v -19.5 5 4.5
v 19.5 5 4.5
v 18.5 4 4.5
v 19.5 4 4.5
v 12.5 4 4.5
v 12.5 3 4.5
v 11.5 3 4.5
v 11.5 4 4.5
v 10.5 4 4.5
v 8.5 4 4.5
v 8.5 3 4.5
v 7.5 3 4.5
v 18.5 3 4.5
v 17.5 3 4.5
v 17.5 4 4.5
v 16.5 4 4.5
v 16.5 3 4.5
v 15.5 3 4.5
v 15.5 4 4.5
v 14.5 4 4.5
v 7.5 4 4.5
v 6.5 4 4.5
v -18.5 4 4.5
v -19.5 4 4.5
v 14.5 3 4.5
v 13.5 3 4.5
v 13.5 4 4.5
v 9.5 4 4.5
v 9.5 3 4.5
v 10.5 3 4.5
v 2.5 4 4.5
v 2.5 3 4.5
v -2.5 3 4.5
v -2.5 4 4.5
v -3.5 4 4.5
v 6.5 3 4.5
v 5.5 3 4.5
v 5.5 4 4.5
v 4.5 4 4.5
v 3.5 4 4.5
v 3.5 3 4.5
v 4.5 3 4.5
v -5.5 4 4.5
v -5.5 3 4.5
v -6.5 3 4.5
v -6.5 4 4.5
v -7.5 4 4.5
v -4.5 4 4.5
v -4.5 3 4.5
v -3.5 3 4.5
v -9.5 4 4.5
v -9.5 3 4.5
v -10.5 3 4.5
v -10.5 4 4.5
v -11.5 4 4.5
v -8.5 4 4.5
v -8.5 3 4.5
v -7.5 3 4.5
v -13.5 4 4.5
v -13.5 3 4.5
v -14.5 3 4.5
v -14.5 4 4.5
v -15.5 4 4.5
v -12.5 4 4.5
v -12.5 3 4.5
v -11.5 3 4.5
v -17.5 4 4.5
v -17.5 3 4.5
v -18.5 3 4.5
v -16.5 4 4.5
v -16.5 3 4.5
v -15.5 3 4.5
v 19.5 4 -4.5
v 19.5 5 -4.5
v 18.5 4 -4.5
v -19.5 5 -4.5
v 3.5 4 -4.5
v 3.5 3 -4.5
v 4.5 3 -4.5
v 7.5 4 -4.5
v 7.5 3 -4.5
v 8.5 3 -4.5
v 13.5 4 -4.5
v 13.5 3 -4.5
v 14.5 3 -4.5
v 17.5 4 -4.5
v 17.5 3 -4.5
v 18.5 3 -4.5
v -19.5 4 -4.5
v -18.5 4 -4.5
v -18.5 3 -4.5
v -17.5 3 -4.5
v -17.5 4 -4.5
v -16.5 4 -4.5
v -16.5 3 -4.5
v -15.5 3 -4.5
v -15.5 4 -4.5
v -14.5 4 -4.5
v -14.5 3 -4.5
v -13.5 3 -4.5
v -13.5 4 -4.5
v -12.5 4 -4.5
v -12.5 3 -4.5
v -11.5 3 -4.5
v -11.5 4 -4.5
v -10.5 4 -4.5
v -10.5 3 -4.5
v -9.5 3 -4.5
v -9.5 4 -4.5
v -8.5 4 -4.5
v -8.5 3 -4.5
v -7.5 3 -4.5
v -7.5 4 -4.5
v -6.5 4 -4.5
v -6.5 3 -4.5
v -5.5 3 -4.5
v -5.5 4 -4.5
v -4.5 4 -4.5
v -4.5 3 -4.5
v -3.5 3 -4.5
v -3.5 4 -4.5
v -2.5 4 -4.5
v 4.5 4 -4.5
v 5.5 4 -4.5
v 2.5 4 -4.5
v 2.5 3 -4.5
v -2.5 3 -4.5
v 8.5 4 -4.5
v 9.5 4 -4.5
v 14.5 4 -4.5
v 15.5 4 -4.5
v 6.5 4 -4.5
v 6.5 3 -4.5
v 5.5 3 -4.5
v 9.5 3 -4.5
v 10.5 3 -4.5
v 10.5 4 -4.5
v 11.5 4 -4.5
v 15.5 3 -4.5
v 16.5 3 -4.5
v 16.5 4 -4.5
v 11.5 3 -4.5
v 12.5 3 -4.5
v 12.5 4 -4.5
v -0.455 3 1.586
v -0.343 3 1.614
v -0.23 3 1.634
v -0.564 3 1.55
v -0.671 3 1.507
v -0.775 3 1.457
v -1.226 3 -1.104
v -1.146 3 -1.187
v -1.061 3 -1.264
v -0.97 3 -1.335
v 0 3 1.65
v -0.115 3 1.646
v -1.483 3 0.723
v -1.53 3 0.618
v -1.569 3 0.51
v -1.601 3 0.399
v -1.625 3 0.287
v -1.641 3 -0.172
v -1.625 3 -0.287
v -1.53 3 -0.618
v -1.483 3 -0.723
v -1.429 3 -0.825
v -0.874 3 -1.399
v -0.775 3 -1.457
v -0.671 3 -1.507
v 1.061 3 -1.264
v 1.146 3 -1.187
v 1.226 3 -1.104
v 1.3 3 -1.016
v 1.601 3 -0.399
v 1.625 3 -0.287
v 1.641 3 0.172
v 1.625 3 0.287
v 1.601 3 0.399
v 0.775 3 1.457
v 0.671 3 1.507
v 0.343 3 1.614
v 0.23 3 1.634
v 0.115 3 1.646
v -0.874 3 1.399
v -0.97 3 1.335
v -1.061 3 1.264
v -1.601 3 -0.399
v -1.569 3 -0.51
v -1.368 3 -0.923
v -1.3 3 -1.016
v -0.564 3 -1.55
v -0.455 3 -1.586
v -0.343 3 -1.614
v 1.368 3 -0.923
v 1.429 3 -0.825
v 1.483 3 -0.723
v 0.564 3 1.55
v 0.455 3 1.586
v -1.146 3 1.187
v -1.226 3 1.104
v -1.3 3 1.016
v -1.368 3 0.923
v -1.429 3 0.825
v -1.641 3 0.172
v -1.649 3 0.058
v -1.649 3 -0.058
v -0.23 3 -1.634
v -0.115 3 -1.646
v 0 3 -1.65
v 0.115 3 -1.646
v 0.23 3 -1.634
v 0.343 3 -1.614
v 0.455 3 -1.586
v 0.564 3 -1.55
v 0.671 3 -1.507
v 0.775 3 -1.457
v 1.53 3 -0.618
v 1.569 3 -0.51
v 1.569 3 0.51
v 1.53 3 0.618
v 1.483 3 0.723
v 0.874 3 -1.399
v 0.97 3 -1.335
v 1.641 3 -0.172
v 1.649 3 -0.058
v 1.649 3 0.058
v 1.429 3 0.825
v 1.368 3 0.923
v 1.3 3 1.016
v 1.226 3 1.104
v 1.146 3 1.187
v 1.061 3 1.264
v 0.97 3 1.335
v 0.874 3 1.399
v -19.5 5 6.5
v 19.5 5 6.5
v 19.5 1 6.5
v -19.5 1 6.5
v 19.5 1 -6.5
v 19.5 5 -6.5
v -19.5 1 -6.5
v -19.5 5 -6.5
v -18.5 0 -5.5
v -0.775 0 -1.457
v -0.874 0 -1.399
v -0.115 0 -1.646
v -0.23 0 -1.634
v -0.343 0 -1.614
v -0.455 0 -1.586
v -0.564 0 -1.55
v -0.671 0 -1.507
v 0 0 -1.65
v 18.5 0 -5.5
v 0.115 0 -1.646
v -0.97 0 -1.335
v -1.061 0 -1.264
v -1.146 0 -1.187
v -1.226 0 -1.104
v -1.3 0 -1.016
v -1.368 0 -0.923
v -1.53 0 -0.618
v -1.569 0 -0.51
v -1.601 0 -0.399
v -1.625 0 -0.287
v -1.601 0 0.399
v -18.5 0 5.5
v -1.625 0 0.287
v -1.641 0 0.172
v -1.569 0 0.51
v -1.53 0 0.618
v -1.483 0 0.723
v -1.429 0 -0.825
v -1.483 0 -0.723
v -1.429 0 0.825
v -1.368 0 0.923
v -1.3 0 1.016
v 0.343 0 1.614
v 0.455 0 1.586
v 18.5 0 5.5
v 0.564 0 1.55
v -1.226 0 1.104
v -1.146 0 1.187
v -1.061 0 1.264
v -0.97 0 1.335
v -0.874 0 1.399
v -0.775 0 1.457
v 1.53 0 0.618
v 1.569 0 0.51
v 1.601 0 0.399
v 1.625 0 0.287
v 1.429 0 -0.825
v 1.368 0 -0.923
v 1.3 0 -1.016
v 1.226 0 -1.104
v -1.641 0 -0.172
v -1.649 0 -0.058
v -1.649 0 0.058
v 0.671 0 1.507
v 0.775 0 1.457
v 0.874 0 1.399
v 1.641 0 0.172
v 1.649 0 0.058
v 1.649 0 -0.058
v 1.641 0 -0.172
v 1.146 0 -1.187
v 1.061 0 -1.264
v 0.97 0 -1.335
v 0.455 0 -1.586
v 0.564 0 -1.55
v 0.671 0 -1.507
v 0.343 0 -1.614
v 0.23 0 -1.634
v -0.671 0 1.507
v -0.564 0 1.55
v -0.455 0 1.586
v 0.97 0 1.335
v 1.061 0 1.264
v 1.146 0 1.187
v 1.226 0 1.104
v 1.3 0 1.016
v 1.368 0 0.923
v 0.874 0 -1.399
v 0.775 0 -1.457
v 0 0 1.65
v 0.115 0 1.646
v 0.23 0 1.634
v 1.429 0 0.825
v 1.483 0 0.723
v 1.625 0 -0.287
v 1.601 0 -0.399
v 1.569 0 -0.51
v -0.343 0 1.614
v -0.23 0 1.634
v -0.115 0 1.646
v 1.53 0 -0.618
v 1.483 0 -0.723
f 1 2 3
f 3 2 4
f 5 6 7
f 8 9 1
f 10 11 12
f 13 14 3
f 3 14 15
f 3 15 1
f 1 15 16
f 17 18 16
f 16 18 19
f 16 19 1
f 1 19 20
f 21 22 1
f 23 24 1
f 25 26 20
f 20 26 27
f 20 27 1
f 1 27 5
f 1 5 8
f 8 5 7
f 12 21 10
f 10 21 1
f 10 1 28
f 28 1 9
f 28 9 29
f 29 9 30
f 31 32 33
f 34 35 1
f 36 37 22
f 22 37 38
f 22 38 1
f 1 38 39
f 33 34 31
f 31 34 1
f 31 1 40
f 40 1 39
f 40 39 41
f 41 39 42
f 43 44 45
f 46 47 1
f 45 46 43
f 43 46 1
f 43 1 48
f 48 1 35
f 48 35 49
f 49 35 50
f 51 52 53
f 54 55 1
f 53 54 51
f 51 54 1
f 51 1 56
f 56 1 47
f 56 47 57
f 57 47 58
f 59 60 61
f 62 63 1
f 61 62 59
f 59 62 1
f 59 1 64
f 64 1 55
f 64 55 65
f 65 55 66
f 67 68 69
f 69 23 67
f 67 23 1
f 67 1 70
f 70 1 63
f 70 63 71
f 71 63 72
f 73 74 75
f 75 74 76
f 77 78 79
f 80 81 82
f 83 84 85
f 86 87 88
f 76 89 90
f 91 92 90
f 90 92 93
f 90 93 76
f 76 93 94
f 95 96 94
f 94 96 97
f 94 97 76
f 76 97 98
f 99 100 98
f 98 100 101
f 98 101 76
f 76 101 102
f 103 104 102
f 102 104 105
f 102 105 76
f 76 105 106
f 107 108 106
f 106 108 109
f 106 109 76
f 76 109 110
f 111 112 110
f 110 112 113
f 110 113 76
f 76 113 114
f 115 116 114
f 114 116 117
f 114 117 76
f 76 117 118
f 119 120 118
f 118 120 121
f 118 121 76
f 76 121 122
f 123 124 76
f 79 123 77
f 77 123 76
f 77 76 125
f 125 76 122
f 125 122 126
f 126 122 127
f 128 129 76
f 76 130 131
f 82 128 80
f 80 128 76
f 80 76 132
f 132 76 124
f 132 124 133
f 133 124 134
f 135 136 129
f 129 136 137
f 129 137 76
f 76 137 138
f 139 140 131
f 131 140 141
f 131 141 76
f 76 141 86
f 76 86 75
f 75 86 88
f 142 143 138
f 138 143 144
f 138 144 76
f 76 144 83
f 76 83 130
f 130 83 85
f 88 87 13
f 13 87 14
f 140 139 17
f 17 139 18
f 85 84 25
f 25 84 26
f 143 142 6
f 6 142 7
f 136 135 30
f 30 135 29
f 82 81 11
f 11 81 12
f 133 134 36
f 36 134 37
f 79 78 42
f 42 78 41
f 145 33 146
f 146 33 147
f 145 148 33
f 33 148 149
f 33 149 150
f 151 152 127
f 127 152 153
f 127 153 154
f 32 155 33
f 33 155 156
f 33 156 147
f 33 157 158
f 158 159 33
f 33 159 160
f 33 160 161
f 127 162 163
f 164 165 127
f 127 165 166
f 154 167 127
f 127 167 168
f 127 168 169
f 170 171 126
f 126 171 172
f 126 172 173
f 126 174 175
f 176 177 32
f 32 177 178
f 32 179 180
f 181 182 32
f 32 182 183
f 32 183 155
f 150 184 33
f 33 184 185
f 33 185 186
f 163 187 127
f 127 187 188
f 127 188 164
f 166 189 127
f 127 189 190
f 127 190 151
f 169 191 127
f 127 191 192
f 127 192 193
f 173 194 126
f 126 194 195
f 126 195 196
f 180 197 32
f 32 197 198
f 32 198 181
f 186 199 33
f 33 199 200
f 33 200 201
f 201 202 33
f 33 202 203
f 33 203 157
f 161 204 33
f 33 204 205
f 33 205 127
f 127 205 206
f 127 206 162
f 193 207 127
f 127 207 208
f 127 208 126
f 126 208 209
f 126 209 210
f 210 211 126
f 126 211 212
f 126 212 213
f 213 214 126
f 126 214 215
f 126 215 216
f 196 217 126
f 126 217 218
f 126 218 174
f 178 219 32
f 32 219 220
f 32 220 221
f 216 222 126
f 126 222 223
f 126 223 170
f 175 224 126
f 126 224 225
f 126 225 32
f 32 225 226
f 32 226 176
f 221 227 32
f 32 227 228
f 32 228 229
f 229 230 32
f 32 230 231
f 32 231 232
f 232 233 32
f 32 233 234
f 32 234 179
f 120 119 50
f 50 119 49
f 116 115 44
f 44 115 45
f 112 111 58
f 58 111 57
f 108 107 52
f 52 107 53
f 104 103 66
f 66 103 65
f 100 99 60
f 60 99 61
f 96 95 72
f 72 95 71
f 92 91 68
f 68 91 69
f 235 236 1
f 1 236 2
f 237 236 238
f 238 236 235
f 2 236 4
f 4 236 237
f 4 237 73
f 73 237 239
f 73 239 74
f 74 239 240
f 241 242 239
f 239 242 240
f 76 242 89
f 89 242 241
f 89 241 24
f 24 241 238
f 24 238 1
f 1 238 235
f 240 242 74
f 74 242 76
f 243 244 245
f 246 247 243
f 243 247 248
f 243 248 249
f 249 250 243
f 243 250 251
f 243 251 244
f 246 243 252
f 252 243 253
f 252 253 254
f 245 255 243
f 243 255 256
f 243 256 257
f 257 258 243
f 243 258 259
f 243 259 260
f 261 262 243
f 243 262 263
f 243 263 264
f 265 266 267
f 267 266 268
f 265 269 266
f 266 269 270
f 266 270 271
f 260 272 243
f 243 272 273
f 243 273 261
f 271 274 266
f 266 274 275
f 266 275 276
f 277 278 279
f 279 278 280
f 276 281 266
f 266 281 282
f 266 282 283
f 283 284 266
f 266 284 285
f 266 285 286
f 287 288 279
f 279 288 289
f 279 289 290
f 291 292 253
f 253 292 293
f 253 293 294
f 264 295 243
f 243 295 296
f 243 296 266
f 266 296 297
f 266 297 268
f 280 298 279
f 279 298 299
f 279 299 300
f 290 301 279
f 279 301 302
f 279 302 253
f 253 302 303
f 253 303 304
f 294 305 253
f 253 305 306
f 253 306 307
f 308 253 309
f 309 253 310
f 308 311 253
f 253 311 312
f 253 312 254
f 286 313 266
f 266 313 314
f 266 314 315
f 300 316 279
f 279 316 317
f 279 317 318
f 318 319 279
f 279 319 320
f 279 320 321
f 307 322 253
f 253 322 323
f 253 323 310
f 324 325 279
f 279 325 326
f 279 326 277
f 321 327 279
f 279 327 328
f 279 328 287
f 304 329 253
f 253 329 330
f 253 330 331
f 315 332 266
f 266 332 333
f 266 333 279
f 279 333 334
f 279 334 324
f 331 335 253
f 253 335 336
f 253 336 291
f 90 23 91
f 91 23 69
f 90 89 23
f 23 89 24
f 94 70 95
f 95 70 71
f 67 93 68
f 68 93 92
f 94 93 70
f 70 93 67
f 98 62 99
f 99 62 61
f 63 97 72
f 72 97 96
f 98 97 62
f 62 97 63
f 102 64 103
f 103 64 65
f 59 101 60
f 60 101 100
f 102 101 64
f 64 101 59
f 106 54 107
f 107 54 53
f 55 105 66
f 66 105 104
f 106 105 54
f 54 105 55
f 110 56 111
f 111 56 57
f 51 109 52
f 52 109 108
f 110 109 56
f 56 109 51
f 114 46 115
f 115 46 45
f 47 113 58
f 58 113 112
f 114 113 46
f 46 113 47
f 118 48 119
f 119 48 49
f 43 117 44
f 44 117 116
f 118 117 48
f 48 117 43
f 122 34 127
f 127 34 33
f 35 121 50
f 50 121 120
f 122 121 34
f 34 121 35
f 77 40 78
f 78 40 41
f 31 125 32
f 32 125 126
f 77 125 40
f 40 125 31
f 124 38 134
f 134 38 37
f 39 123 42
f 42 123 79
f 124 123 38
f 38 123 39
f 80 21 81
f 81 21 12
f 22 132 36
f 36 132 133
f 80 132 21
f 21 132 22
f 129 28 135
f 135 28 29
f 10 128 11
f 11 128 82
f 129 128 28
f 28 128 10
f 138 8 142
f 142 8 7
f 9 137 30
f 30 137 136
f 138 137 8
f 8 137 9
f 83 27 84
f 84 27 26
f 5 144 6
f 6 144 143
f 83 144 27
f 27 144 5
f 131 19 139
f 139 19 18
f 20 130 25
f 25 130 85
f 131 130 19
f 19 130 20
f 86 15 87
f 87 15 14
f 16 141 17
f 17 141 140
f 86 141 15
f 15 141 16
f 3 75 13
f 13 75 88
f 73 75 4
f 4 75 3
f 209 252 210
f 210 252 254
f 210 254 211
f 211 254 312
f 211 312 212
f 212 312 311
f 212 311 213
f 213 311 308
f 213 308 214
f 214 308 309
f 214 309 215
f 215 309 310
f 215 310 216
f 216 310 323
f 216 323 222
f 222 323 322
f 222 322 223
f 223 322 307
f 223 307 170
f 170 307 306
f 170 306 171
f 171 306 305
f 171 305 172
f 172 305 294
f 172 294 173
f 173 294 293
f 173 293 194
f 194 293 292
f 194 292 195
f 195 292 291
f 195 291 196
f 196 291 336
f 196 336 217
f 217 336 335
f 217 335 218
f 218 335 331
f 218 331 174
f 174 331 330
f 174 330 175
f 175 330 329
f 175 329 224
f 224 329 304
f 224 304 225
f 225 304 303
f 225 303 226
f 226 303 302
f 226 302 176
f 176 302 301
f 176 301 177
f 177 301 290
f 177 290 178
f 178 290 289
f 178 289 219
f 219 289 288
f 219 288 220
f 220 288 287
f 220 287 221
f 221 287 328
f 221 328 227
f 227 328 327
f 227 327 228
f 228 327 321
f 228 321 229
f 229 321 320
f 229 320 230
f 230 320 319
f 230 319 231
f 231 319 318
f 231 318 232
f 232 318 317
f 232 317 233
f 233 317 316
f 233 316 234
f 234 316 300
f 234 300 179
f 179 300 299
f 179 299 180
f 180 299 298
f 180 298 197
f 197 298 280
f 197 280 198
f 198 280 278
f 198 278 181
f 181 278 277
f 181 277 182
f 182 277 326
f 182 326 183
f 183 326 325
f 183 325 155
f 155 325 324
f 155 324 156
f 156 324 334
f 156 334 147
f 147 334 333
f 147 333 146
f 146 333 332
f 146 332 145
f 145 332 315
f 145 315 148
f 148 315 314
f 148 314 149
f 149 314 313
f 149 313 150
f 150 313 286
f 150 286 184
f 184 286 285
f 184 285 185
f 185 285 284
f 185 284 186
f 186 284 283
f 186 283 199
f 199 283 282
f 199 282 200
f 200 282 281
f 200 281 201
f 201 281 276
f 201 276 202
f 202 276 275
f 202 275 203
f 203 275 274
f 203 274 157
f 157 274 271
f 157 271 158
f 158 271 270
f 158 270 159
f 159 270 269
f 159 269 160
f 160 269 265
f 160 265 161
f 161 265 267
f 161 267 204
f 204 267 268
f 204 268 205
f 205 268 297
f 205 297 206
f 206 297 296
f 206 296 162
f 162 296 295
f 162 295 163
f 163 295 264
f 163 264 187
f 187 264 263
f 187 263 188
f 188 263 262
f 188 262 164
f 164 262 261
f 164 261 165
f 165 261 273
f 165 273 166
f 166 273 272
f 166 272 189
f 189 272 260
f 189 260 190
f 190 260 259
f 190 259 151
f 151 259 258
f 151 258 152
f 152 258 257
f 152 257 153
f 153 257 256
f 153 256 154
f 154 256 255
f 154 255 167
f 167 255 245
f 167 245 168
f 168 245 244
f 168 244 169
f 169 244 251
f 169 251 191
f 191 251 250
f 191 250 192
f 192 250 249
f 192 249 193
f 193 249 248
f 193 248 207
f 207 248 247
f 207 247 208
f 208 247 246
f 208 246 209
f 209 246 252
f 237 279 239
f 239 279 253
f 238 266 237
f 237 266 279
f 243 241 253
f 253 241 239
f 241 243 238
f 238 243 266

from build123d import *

# Parameters (mm, degrees)
SKETCH1_W           = 39
SKETCH1_H           = 13
BOSS_EXTRUDE1_DEPTH = 5
SKETCH5_W           = 39
SKETCH5_H           = 9
CUT_EXTRUDE1_DEPTH  = 2
SKETCH2_W           = 1
SKETCH2_H           = 9
BOSS_EXTRUDE2_DEPTH = 1
SKETCH6_R           = 1.65
CUT_EXTRUDE2_DEPTH  = 6
CHAMFER1_SIZE       = 1


with BuildPart() as part:
    # Sketch1 → Boss-Extrude1 (new body)
    with BuildSketch(Plane(origin=(0, 0, 0), x_dir=(1, 0, 0), z_dir=(0, 1, 0))):
        Rectangle(SKETCH1_W, SKETCH1_H)
    extrude(amount=BOSS_EXTRUDE1_DEPTH)

    # Sketch5 → Cut-Extrude1 (cut)
    with BuildSketch(Plane(origin=(0, 5, 0), x_dir=(1, 0, 0), z_dir=(0, 1, 0))):
        Rectangle(SKETCH5_W, SKETCH5_H)
    extrude(amount=-CUT_EXTRUDE1_DEPTH, mode=Mode.SUBTRACT)

    # Sketch2 → Boss-Extrude2 (add)
    with BuildSketch(Plane(origin=(0, 3, 0), x_dir=(1, 0, 0), z_dir=(0, 1, 0))):
        with Locations((7, 0)):
            Rectangle(SKETCH2_W, SKETCH2_H)
        with Locations((5, 0)):
            Rectangle(SKETCH2_W, SKETCH2_H)
        with Locations((9, 0)):
            Rectangle(SKETCH2_W, SKETCH2_H)
        with Locations((3, 0)):
            Rectangle(SKETCH2_W, SKETCH2_H)
        with Locations((11, 0)):
            Rectangle(SKETCH2_W, SKETCH2_H)
        with Locations((13, 0)):
            Rectangle(SKETCH2_W, SKETCH2_H)
        with Locations((15, 0)):
            Rectangle(SKETCH2_W, SKETCH2_H)
        with Locations((-3, 0)):
            Rectangle(SKETCH2_W, SKETCH2_H)
        with Locations((17, 0)):
            Rectangle(SKETCH2_W, SKETCH2_H)
        with Locations((-5, 0)):
            Rectangle(SKETCH2_W, SKETCH2_H)
        with Locations((19, 0)):
            Rectangle(SKETCH2_W, SKETCH2_H)
        with Locations((-7, 0)):
            Rectangle(SKETCH2_W, SKETCH2_H)
        with Locations((-9, 0)):
            Rectangle(SKETCH2_W, SKETCH2_H)
        with Locations((-11, 0)):
            Rectangle(SKETCH2_W, SKETCH2_H)
        with Locations((-13, 0)):
            Rectangle(SKETCH2_W, SKETCH2_H)
        with Locations((-15, 0)):
            Rectangle(SKETCH2_W, SKETCH2_H)
        with Locations((-17, 0)):
            Rectangle(SKETCH2_W, SKETCH2_H)
        with Locations((-19, 0)):
            Rectangle(SKETCH2_W, SKETCH2_H)
    extrude(amount=BOSS_EXTRUDE2_DEPTH)

    # Sketch6 → Cut-Extrude2 (cut, through all)
    with BuildSketch(Plane.XZ):
        Circle(SKETCH6_R)
    extrude(amount=-CUT_EXTRUDE2_DEPTH, mode=Mode.SUBTRACT)

    # Chamfer1
    chamfer1_edges = [part.edges().sort_by_distance(p)[0] for p in [
        (-19.5, 0, 0),
        (0, 0, -6.5),
        (19.5, 0, 0),
        (0, 0, 6.5),
    ]]
    chamfer(chamfer1_edges, length=CHAMFER1_SIZE)


solid = part.part
